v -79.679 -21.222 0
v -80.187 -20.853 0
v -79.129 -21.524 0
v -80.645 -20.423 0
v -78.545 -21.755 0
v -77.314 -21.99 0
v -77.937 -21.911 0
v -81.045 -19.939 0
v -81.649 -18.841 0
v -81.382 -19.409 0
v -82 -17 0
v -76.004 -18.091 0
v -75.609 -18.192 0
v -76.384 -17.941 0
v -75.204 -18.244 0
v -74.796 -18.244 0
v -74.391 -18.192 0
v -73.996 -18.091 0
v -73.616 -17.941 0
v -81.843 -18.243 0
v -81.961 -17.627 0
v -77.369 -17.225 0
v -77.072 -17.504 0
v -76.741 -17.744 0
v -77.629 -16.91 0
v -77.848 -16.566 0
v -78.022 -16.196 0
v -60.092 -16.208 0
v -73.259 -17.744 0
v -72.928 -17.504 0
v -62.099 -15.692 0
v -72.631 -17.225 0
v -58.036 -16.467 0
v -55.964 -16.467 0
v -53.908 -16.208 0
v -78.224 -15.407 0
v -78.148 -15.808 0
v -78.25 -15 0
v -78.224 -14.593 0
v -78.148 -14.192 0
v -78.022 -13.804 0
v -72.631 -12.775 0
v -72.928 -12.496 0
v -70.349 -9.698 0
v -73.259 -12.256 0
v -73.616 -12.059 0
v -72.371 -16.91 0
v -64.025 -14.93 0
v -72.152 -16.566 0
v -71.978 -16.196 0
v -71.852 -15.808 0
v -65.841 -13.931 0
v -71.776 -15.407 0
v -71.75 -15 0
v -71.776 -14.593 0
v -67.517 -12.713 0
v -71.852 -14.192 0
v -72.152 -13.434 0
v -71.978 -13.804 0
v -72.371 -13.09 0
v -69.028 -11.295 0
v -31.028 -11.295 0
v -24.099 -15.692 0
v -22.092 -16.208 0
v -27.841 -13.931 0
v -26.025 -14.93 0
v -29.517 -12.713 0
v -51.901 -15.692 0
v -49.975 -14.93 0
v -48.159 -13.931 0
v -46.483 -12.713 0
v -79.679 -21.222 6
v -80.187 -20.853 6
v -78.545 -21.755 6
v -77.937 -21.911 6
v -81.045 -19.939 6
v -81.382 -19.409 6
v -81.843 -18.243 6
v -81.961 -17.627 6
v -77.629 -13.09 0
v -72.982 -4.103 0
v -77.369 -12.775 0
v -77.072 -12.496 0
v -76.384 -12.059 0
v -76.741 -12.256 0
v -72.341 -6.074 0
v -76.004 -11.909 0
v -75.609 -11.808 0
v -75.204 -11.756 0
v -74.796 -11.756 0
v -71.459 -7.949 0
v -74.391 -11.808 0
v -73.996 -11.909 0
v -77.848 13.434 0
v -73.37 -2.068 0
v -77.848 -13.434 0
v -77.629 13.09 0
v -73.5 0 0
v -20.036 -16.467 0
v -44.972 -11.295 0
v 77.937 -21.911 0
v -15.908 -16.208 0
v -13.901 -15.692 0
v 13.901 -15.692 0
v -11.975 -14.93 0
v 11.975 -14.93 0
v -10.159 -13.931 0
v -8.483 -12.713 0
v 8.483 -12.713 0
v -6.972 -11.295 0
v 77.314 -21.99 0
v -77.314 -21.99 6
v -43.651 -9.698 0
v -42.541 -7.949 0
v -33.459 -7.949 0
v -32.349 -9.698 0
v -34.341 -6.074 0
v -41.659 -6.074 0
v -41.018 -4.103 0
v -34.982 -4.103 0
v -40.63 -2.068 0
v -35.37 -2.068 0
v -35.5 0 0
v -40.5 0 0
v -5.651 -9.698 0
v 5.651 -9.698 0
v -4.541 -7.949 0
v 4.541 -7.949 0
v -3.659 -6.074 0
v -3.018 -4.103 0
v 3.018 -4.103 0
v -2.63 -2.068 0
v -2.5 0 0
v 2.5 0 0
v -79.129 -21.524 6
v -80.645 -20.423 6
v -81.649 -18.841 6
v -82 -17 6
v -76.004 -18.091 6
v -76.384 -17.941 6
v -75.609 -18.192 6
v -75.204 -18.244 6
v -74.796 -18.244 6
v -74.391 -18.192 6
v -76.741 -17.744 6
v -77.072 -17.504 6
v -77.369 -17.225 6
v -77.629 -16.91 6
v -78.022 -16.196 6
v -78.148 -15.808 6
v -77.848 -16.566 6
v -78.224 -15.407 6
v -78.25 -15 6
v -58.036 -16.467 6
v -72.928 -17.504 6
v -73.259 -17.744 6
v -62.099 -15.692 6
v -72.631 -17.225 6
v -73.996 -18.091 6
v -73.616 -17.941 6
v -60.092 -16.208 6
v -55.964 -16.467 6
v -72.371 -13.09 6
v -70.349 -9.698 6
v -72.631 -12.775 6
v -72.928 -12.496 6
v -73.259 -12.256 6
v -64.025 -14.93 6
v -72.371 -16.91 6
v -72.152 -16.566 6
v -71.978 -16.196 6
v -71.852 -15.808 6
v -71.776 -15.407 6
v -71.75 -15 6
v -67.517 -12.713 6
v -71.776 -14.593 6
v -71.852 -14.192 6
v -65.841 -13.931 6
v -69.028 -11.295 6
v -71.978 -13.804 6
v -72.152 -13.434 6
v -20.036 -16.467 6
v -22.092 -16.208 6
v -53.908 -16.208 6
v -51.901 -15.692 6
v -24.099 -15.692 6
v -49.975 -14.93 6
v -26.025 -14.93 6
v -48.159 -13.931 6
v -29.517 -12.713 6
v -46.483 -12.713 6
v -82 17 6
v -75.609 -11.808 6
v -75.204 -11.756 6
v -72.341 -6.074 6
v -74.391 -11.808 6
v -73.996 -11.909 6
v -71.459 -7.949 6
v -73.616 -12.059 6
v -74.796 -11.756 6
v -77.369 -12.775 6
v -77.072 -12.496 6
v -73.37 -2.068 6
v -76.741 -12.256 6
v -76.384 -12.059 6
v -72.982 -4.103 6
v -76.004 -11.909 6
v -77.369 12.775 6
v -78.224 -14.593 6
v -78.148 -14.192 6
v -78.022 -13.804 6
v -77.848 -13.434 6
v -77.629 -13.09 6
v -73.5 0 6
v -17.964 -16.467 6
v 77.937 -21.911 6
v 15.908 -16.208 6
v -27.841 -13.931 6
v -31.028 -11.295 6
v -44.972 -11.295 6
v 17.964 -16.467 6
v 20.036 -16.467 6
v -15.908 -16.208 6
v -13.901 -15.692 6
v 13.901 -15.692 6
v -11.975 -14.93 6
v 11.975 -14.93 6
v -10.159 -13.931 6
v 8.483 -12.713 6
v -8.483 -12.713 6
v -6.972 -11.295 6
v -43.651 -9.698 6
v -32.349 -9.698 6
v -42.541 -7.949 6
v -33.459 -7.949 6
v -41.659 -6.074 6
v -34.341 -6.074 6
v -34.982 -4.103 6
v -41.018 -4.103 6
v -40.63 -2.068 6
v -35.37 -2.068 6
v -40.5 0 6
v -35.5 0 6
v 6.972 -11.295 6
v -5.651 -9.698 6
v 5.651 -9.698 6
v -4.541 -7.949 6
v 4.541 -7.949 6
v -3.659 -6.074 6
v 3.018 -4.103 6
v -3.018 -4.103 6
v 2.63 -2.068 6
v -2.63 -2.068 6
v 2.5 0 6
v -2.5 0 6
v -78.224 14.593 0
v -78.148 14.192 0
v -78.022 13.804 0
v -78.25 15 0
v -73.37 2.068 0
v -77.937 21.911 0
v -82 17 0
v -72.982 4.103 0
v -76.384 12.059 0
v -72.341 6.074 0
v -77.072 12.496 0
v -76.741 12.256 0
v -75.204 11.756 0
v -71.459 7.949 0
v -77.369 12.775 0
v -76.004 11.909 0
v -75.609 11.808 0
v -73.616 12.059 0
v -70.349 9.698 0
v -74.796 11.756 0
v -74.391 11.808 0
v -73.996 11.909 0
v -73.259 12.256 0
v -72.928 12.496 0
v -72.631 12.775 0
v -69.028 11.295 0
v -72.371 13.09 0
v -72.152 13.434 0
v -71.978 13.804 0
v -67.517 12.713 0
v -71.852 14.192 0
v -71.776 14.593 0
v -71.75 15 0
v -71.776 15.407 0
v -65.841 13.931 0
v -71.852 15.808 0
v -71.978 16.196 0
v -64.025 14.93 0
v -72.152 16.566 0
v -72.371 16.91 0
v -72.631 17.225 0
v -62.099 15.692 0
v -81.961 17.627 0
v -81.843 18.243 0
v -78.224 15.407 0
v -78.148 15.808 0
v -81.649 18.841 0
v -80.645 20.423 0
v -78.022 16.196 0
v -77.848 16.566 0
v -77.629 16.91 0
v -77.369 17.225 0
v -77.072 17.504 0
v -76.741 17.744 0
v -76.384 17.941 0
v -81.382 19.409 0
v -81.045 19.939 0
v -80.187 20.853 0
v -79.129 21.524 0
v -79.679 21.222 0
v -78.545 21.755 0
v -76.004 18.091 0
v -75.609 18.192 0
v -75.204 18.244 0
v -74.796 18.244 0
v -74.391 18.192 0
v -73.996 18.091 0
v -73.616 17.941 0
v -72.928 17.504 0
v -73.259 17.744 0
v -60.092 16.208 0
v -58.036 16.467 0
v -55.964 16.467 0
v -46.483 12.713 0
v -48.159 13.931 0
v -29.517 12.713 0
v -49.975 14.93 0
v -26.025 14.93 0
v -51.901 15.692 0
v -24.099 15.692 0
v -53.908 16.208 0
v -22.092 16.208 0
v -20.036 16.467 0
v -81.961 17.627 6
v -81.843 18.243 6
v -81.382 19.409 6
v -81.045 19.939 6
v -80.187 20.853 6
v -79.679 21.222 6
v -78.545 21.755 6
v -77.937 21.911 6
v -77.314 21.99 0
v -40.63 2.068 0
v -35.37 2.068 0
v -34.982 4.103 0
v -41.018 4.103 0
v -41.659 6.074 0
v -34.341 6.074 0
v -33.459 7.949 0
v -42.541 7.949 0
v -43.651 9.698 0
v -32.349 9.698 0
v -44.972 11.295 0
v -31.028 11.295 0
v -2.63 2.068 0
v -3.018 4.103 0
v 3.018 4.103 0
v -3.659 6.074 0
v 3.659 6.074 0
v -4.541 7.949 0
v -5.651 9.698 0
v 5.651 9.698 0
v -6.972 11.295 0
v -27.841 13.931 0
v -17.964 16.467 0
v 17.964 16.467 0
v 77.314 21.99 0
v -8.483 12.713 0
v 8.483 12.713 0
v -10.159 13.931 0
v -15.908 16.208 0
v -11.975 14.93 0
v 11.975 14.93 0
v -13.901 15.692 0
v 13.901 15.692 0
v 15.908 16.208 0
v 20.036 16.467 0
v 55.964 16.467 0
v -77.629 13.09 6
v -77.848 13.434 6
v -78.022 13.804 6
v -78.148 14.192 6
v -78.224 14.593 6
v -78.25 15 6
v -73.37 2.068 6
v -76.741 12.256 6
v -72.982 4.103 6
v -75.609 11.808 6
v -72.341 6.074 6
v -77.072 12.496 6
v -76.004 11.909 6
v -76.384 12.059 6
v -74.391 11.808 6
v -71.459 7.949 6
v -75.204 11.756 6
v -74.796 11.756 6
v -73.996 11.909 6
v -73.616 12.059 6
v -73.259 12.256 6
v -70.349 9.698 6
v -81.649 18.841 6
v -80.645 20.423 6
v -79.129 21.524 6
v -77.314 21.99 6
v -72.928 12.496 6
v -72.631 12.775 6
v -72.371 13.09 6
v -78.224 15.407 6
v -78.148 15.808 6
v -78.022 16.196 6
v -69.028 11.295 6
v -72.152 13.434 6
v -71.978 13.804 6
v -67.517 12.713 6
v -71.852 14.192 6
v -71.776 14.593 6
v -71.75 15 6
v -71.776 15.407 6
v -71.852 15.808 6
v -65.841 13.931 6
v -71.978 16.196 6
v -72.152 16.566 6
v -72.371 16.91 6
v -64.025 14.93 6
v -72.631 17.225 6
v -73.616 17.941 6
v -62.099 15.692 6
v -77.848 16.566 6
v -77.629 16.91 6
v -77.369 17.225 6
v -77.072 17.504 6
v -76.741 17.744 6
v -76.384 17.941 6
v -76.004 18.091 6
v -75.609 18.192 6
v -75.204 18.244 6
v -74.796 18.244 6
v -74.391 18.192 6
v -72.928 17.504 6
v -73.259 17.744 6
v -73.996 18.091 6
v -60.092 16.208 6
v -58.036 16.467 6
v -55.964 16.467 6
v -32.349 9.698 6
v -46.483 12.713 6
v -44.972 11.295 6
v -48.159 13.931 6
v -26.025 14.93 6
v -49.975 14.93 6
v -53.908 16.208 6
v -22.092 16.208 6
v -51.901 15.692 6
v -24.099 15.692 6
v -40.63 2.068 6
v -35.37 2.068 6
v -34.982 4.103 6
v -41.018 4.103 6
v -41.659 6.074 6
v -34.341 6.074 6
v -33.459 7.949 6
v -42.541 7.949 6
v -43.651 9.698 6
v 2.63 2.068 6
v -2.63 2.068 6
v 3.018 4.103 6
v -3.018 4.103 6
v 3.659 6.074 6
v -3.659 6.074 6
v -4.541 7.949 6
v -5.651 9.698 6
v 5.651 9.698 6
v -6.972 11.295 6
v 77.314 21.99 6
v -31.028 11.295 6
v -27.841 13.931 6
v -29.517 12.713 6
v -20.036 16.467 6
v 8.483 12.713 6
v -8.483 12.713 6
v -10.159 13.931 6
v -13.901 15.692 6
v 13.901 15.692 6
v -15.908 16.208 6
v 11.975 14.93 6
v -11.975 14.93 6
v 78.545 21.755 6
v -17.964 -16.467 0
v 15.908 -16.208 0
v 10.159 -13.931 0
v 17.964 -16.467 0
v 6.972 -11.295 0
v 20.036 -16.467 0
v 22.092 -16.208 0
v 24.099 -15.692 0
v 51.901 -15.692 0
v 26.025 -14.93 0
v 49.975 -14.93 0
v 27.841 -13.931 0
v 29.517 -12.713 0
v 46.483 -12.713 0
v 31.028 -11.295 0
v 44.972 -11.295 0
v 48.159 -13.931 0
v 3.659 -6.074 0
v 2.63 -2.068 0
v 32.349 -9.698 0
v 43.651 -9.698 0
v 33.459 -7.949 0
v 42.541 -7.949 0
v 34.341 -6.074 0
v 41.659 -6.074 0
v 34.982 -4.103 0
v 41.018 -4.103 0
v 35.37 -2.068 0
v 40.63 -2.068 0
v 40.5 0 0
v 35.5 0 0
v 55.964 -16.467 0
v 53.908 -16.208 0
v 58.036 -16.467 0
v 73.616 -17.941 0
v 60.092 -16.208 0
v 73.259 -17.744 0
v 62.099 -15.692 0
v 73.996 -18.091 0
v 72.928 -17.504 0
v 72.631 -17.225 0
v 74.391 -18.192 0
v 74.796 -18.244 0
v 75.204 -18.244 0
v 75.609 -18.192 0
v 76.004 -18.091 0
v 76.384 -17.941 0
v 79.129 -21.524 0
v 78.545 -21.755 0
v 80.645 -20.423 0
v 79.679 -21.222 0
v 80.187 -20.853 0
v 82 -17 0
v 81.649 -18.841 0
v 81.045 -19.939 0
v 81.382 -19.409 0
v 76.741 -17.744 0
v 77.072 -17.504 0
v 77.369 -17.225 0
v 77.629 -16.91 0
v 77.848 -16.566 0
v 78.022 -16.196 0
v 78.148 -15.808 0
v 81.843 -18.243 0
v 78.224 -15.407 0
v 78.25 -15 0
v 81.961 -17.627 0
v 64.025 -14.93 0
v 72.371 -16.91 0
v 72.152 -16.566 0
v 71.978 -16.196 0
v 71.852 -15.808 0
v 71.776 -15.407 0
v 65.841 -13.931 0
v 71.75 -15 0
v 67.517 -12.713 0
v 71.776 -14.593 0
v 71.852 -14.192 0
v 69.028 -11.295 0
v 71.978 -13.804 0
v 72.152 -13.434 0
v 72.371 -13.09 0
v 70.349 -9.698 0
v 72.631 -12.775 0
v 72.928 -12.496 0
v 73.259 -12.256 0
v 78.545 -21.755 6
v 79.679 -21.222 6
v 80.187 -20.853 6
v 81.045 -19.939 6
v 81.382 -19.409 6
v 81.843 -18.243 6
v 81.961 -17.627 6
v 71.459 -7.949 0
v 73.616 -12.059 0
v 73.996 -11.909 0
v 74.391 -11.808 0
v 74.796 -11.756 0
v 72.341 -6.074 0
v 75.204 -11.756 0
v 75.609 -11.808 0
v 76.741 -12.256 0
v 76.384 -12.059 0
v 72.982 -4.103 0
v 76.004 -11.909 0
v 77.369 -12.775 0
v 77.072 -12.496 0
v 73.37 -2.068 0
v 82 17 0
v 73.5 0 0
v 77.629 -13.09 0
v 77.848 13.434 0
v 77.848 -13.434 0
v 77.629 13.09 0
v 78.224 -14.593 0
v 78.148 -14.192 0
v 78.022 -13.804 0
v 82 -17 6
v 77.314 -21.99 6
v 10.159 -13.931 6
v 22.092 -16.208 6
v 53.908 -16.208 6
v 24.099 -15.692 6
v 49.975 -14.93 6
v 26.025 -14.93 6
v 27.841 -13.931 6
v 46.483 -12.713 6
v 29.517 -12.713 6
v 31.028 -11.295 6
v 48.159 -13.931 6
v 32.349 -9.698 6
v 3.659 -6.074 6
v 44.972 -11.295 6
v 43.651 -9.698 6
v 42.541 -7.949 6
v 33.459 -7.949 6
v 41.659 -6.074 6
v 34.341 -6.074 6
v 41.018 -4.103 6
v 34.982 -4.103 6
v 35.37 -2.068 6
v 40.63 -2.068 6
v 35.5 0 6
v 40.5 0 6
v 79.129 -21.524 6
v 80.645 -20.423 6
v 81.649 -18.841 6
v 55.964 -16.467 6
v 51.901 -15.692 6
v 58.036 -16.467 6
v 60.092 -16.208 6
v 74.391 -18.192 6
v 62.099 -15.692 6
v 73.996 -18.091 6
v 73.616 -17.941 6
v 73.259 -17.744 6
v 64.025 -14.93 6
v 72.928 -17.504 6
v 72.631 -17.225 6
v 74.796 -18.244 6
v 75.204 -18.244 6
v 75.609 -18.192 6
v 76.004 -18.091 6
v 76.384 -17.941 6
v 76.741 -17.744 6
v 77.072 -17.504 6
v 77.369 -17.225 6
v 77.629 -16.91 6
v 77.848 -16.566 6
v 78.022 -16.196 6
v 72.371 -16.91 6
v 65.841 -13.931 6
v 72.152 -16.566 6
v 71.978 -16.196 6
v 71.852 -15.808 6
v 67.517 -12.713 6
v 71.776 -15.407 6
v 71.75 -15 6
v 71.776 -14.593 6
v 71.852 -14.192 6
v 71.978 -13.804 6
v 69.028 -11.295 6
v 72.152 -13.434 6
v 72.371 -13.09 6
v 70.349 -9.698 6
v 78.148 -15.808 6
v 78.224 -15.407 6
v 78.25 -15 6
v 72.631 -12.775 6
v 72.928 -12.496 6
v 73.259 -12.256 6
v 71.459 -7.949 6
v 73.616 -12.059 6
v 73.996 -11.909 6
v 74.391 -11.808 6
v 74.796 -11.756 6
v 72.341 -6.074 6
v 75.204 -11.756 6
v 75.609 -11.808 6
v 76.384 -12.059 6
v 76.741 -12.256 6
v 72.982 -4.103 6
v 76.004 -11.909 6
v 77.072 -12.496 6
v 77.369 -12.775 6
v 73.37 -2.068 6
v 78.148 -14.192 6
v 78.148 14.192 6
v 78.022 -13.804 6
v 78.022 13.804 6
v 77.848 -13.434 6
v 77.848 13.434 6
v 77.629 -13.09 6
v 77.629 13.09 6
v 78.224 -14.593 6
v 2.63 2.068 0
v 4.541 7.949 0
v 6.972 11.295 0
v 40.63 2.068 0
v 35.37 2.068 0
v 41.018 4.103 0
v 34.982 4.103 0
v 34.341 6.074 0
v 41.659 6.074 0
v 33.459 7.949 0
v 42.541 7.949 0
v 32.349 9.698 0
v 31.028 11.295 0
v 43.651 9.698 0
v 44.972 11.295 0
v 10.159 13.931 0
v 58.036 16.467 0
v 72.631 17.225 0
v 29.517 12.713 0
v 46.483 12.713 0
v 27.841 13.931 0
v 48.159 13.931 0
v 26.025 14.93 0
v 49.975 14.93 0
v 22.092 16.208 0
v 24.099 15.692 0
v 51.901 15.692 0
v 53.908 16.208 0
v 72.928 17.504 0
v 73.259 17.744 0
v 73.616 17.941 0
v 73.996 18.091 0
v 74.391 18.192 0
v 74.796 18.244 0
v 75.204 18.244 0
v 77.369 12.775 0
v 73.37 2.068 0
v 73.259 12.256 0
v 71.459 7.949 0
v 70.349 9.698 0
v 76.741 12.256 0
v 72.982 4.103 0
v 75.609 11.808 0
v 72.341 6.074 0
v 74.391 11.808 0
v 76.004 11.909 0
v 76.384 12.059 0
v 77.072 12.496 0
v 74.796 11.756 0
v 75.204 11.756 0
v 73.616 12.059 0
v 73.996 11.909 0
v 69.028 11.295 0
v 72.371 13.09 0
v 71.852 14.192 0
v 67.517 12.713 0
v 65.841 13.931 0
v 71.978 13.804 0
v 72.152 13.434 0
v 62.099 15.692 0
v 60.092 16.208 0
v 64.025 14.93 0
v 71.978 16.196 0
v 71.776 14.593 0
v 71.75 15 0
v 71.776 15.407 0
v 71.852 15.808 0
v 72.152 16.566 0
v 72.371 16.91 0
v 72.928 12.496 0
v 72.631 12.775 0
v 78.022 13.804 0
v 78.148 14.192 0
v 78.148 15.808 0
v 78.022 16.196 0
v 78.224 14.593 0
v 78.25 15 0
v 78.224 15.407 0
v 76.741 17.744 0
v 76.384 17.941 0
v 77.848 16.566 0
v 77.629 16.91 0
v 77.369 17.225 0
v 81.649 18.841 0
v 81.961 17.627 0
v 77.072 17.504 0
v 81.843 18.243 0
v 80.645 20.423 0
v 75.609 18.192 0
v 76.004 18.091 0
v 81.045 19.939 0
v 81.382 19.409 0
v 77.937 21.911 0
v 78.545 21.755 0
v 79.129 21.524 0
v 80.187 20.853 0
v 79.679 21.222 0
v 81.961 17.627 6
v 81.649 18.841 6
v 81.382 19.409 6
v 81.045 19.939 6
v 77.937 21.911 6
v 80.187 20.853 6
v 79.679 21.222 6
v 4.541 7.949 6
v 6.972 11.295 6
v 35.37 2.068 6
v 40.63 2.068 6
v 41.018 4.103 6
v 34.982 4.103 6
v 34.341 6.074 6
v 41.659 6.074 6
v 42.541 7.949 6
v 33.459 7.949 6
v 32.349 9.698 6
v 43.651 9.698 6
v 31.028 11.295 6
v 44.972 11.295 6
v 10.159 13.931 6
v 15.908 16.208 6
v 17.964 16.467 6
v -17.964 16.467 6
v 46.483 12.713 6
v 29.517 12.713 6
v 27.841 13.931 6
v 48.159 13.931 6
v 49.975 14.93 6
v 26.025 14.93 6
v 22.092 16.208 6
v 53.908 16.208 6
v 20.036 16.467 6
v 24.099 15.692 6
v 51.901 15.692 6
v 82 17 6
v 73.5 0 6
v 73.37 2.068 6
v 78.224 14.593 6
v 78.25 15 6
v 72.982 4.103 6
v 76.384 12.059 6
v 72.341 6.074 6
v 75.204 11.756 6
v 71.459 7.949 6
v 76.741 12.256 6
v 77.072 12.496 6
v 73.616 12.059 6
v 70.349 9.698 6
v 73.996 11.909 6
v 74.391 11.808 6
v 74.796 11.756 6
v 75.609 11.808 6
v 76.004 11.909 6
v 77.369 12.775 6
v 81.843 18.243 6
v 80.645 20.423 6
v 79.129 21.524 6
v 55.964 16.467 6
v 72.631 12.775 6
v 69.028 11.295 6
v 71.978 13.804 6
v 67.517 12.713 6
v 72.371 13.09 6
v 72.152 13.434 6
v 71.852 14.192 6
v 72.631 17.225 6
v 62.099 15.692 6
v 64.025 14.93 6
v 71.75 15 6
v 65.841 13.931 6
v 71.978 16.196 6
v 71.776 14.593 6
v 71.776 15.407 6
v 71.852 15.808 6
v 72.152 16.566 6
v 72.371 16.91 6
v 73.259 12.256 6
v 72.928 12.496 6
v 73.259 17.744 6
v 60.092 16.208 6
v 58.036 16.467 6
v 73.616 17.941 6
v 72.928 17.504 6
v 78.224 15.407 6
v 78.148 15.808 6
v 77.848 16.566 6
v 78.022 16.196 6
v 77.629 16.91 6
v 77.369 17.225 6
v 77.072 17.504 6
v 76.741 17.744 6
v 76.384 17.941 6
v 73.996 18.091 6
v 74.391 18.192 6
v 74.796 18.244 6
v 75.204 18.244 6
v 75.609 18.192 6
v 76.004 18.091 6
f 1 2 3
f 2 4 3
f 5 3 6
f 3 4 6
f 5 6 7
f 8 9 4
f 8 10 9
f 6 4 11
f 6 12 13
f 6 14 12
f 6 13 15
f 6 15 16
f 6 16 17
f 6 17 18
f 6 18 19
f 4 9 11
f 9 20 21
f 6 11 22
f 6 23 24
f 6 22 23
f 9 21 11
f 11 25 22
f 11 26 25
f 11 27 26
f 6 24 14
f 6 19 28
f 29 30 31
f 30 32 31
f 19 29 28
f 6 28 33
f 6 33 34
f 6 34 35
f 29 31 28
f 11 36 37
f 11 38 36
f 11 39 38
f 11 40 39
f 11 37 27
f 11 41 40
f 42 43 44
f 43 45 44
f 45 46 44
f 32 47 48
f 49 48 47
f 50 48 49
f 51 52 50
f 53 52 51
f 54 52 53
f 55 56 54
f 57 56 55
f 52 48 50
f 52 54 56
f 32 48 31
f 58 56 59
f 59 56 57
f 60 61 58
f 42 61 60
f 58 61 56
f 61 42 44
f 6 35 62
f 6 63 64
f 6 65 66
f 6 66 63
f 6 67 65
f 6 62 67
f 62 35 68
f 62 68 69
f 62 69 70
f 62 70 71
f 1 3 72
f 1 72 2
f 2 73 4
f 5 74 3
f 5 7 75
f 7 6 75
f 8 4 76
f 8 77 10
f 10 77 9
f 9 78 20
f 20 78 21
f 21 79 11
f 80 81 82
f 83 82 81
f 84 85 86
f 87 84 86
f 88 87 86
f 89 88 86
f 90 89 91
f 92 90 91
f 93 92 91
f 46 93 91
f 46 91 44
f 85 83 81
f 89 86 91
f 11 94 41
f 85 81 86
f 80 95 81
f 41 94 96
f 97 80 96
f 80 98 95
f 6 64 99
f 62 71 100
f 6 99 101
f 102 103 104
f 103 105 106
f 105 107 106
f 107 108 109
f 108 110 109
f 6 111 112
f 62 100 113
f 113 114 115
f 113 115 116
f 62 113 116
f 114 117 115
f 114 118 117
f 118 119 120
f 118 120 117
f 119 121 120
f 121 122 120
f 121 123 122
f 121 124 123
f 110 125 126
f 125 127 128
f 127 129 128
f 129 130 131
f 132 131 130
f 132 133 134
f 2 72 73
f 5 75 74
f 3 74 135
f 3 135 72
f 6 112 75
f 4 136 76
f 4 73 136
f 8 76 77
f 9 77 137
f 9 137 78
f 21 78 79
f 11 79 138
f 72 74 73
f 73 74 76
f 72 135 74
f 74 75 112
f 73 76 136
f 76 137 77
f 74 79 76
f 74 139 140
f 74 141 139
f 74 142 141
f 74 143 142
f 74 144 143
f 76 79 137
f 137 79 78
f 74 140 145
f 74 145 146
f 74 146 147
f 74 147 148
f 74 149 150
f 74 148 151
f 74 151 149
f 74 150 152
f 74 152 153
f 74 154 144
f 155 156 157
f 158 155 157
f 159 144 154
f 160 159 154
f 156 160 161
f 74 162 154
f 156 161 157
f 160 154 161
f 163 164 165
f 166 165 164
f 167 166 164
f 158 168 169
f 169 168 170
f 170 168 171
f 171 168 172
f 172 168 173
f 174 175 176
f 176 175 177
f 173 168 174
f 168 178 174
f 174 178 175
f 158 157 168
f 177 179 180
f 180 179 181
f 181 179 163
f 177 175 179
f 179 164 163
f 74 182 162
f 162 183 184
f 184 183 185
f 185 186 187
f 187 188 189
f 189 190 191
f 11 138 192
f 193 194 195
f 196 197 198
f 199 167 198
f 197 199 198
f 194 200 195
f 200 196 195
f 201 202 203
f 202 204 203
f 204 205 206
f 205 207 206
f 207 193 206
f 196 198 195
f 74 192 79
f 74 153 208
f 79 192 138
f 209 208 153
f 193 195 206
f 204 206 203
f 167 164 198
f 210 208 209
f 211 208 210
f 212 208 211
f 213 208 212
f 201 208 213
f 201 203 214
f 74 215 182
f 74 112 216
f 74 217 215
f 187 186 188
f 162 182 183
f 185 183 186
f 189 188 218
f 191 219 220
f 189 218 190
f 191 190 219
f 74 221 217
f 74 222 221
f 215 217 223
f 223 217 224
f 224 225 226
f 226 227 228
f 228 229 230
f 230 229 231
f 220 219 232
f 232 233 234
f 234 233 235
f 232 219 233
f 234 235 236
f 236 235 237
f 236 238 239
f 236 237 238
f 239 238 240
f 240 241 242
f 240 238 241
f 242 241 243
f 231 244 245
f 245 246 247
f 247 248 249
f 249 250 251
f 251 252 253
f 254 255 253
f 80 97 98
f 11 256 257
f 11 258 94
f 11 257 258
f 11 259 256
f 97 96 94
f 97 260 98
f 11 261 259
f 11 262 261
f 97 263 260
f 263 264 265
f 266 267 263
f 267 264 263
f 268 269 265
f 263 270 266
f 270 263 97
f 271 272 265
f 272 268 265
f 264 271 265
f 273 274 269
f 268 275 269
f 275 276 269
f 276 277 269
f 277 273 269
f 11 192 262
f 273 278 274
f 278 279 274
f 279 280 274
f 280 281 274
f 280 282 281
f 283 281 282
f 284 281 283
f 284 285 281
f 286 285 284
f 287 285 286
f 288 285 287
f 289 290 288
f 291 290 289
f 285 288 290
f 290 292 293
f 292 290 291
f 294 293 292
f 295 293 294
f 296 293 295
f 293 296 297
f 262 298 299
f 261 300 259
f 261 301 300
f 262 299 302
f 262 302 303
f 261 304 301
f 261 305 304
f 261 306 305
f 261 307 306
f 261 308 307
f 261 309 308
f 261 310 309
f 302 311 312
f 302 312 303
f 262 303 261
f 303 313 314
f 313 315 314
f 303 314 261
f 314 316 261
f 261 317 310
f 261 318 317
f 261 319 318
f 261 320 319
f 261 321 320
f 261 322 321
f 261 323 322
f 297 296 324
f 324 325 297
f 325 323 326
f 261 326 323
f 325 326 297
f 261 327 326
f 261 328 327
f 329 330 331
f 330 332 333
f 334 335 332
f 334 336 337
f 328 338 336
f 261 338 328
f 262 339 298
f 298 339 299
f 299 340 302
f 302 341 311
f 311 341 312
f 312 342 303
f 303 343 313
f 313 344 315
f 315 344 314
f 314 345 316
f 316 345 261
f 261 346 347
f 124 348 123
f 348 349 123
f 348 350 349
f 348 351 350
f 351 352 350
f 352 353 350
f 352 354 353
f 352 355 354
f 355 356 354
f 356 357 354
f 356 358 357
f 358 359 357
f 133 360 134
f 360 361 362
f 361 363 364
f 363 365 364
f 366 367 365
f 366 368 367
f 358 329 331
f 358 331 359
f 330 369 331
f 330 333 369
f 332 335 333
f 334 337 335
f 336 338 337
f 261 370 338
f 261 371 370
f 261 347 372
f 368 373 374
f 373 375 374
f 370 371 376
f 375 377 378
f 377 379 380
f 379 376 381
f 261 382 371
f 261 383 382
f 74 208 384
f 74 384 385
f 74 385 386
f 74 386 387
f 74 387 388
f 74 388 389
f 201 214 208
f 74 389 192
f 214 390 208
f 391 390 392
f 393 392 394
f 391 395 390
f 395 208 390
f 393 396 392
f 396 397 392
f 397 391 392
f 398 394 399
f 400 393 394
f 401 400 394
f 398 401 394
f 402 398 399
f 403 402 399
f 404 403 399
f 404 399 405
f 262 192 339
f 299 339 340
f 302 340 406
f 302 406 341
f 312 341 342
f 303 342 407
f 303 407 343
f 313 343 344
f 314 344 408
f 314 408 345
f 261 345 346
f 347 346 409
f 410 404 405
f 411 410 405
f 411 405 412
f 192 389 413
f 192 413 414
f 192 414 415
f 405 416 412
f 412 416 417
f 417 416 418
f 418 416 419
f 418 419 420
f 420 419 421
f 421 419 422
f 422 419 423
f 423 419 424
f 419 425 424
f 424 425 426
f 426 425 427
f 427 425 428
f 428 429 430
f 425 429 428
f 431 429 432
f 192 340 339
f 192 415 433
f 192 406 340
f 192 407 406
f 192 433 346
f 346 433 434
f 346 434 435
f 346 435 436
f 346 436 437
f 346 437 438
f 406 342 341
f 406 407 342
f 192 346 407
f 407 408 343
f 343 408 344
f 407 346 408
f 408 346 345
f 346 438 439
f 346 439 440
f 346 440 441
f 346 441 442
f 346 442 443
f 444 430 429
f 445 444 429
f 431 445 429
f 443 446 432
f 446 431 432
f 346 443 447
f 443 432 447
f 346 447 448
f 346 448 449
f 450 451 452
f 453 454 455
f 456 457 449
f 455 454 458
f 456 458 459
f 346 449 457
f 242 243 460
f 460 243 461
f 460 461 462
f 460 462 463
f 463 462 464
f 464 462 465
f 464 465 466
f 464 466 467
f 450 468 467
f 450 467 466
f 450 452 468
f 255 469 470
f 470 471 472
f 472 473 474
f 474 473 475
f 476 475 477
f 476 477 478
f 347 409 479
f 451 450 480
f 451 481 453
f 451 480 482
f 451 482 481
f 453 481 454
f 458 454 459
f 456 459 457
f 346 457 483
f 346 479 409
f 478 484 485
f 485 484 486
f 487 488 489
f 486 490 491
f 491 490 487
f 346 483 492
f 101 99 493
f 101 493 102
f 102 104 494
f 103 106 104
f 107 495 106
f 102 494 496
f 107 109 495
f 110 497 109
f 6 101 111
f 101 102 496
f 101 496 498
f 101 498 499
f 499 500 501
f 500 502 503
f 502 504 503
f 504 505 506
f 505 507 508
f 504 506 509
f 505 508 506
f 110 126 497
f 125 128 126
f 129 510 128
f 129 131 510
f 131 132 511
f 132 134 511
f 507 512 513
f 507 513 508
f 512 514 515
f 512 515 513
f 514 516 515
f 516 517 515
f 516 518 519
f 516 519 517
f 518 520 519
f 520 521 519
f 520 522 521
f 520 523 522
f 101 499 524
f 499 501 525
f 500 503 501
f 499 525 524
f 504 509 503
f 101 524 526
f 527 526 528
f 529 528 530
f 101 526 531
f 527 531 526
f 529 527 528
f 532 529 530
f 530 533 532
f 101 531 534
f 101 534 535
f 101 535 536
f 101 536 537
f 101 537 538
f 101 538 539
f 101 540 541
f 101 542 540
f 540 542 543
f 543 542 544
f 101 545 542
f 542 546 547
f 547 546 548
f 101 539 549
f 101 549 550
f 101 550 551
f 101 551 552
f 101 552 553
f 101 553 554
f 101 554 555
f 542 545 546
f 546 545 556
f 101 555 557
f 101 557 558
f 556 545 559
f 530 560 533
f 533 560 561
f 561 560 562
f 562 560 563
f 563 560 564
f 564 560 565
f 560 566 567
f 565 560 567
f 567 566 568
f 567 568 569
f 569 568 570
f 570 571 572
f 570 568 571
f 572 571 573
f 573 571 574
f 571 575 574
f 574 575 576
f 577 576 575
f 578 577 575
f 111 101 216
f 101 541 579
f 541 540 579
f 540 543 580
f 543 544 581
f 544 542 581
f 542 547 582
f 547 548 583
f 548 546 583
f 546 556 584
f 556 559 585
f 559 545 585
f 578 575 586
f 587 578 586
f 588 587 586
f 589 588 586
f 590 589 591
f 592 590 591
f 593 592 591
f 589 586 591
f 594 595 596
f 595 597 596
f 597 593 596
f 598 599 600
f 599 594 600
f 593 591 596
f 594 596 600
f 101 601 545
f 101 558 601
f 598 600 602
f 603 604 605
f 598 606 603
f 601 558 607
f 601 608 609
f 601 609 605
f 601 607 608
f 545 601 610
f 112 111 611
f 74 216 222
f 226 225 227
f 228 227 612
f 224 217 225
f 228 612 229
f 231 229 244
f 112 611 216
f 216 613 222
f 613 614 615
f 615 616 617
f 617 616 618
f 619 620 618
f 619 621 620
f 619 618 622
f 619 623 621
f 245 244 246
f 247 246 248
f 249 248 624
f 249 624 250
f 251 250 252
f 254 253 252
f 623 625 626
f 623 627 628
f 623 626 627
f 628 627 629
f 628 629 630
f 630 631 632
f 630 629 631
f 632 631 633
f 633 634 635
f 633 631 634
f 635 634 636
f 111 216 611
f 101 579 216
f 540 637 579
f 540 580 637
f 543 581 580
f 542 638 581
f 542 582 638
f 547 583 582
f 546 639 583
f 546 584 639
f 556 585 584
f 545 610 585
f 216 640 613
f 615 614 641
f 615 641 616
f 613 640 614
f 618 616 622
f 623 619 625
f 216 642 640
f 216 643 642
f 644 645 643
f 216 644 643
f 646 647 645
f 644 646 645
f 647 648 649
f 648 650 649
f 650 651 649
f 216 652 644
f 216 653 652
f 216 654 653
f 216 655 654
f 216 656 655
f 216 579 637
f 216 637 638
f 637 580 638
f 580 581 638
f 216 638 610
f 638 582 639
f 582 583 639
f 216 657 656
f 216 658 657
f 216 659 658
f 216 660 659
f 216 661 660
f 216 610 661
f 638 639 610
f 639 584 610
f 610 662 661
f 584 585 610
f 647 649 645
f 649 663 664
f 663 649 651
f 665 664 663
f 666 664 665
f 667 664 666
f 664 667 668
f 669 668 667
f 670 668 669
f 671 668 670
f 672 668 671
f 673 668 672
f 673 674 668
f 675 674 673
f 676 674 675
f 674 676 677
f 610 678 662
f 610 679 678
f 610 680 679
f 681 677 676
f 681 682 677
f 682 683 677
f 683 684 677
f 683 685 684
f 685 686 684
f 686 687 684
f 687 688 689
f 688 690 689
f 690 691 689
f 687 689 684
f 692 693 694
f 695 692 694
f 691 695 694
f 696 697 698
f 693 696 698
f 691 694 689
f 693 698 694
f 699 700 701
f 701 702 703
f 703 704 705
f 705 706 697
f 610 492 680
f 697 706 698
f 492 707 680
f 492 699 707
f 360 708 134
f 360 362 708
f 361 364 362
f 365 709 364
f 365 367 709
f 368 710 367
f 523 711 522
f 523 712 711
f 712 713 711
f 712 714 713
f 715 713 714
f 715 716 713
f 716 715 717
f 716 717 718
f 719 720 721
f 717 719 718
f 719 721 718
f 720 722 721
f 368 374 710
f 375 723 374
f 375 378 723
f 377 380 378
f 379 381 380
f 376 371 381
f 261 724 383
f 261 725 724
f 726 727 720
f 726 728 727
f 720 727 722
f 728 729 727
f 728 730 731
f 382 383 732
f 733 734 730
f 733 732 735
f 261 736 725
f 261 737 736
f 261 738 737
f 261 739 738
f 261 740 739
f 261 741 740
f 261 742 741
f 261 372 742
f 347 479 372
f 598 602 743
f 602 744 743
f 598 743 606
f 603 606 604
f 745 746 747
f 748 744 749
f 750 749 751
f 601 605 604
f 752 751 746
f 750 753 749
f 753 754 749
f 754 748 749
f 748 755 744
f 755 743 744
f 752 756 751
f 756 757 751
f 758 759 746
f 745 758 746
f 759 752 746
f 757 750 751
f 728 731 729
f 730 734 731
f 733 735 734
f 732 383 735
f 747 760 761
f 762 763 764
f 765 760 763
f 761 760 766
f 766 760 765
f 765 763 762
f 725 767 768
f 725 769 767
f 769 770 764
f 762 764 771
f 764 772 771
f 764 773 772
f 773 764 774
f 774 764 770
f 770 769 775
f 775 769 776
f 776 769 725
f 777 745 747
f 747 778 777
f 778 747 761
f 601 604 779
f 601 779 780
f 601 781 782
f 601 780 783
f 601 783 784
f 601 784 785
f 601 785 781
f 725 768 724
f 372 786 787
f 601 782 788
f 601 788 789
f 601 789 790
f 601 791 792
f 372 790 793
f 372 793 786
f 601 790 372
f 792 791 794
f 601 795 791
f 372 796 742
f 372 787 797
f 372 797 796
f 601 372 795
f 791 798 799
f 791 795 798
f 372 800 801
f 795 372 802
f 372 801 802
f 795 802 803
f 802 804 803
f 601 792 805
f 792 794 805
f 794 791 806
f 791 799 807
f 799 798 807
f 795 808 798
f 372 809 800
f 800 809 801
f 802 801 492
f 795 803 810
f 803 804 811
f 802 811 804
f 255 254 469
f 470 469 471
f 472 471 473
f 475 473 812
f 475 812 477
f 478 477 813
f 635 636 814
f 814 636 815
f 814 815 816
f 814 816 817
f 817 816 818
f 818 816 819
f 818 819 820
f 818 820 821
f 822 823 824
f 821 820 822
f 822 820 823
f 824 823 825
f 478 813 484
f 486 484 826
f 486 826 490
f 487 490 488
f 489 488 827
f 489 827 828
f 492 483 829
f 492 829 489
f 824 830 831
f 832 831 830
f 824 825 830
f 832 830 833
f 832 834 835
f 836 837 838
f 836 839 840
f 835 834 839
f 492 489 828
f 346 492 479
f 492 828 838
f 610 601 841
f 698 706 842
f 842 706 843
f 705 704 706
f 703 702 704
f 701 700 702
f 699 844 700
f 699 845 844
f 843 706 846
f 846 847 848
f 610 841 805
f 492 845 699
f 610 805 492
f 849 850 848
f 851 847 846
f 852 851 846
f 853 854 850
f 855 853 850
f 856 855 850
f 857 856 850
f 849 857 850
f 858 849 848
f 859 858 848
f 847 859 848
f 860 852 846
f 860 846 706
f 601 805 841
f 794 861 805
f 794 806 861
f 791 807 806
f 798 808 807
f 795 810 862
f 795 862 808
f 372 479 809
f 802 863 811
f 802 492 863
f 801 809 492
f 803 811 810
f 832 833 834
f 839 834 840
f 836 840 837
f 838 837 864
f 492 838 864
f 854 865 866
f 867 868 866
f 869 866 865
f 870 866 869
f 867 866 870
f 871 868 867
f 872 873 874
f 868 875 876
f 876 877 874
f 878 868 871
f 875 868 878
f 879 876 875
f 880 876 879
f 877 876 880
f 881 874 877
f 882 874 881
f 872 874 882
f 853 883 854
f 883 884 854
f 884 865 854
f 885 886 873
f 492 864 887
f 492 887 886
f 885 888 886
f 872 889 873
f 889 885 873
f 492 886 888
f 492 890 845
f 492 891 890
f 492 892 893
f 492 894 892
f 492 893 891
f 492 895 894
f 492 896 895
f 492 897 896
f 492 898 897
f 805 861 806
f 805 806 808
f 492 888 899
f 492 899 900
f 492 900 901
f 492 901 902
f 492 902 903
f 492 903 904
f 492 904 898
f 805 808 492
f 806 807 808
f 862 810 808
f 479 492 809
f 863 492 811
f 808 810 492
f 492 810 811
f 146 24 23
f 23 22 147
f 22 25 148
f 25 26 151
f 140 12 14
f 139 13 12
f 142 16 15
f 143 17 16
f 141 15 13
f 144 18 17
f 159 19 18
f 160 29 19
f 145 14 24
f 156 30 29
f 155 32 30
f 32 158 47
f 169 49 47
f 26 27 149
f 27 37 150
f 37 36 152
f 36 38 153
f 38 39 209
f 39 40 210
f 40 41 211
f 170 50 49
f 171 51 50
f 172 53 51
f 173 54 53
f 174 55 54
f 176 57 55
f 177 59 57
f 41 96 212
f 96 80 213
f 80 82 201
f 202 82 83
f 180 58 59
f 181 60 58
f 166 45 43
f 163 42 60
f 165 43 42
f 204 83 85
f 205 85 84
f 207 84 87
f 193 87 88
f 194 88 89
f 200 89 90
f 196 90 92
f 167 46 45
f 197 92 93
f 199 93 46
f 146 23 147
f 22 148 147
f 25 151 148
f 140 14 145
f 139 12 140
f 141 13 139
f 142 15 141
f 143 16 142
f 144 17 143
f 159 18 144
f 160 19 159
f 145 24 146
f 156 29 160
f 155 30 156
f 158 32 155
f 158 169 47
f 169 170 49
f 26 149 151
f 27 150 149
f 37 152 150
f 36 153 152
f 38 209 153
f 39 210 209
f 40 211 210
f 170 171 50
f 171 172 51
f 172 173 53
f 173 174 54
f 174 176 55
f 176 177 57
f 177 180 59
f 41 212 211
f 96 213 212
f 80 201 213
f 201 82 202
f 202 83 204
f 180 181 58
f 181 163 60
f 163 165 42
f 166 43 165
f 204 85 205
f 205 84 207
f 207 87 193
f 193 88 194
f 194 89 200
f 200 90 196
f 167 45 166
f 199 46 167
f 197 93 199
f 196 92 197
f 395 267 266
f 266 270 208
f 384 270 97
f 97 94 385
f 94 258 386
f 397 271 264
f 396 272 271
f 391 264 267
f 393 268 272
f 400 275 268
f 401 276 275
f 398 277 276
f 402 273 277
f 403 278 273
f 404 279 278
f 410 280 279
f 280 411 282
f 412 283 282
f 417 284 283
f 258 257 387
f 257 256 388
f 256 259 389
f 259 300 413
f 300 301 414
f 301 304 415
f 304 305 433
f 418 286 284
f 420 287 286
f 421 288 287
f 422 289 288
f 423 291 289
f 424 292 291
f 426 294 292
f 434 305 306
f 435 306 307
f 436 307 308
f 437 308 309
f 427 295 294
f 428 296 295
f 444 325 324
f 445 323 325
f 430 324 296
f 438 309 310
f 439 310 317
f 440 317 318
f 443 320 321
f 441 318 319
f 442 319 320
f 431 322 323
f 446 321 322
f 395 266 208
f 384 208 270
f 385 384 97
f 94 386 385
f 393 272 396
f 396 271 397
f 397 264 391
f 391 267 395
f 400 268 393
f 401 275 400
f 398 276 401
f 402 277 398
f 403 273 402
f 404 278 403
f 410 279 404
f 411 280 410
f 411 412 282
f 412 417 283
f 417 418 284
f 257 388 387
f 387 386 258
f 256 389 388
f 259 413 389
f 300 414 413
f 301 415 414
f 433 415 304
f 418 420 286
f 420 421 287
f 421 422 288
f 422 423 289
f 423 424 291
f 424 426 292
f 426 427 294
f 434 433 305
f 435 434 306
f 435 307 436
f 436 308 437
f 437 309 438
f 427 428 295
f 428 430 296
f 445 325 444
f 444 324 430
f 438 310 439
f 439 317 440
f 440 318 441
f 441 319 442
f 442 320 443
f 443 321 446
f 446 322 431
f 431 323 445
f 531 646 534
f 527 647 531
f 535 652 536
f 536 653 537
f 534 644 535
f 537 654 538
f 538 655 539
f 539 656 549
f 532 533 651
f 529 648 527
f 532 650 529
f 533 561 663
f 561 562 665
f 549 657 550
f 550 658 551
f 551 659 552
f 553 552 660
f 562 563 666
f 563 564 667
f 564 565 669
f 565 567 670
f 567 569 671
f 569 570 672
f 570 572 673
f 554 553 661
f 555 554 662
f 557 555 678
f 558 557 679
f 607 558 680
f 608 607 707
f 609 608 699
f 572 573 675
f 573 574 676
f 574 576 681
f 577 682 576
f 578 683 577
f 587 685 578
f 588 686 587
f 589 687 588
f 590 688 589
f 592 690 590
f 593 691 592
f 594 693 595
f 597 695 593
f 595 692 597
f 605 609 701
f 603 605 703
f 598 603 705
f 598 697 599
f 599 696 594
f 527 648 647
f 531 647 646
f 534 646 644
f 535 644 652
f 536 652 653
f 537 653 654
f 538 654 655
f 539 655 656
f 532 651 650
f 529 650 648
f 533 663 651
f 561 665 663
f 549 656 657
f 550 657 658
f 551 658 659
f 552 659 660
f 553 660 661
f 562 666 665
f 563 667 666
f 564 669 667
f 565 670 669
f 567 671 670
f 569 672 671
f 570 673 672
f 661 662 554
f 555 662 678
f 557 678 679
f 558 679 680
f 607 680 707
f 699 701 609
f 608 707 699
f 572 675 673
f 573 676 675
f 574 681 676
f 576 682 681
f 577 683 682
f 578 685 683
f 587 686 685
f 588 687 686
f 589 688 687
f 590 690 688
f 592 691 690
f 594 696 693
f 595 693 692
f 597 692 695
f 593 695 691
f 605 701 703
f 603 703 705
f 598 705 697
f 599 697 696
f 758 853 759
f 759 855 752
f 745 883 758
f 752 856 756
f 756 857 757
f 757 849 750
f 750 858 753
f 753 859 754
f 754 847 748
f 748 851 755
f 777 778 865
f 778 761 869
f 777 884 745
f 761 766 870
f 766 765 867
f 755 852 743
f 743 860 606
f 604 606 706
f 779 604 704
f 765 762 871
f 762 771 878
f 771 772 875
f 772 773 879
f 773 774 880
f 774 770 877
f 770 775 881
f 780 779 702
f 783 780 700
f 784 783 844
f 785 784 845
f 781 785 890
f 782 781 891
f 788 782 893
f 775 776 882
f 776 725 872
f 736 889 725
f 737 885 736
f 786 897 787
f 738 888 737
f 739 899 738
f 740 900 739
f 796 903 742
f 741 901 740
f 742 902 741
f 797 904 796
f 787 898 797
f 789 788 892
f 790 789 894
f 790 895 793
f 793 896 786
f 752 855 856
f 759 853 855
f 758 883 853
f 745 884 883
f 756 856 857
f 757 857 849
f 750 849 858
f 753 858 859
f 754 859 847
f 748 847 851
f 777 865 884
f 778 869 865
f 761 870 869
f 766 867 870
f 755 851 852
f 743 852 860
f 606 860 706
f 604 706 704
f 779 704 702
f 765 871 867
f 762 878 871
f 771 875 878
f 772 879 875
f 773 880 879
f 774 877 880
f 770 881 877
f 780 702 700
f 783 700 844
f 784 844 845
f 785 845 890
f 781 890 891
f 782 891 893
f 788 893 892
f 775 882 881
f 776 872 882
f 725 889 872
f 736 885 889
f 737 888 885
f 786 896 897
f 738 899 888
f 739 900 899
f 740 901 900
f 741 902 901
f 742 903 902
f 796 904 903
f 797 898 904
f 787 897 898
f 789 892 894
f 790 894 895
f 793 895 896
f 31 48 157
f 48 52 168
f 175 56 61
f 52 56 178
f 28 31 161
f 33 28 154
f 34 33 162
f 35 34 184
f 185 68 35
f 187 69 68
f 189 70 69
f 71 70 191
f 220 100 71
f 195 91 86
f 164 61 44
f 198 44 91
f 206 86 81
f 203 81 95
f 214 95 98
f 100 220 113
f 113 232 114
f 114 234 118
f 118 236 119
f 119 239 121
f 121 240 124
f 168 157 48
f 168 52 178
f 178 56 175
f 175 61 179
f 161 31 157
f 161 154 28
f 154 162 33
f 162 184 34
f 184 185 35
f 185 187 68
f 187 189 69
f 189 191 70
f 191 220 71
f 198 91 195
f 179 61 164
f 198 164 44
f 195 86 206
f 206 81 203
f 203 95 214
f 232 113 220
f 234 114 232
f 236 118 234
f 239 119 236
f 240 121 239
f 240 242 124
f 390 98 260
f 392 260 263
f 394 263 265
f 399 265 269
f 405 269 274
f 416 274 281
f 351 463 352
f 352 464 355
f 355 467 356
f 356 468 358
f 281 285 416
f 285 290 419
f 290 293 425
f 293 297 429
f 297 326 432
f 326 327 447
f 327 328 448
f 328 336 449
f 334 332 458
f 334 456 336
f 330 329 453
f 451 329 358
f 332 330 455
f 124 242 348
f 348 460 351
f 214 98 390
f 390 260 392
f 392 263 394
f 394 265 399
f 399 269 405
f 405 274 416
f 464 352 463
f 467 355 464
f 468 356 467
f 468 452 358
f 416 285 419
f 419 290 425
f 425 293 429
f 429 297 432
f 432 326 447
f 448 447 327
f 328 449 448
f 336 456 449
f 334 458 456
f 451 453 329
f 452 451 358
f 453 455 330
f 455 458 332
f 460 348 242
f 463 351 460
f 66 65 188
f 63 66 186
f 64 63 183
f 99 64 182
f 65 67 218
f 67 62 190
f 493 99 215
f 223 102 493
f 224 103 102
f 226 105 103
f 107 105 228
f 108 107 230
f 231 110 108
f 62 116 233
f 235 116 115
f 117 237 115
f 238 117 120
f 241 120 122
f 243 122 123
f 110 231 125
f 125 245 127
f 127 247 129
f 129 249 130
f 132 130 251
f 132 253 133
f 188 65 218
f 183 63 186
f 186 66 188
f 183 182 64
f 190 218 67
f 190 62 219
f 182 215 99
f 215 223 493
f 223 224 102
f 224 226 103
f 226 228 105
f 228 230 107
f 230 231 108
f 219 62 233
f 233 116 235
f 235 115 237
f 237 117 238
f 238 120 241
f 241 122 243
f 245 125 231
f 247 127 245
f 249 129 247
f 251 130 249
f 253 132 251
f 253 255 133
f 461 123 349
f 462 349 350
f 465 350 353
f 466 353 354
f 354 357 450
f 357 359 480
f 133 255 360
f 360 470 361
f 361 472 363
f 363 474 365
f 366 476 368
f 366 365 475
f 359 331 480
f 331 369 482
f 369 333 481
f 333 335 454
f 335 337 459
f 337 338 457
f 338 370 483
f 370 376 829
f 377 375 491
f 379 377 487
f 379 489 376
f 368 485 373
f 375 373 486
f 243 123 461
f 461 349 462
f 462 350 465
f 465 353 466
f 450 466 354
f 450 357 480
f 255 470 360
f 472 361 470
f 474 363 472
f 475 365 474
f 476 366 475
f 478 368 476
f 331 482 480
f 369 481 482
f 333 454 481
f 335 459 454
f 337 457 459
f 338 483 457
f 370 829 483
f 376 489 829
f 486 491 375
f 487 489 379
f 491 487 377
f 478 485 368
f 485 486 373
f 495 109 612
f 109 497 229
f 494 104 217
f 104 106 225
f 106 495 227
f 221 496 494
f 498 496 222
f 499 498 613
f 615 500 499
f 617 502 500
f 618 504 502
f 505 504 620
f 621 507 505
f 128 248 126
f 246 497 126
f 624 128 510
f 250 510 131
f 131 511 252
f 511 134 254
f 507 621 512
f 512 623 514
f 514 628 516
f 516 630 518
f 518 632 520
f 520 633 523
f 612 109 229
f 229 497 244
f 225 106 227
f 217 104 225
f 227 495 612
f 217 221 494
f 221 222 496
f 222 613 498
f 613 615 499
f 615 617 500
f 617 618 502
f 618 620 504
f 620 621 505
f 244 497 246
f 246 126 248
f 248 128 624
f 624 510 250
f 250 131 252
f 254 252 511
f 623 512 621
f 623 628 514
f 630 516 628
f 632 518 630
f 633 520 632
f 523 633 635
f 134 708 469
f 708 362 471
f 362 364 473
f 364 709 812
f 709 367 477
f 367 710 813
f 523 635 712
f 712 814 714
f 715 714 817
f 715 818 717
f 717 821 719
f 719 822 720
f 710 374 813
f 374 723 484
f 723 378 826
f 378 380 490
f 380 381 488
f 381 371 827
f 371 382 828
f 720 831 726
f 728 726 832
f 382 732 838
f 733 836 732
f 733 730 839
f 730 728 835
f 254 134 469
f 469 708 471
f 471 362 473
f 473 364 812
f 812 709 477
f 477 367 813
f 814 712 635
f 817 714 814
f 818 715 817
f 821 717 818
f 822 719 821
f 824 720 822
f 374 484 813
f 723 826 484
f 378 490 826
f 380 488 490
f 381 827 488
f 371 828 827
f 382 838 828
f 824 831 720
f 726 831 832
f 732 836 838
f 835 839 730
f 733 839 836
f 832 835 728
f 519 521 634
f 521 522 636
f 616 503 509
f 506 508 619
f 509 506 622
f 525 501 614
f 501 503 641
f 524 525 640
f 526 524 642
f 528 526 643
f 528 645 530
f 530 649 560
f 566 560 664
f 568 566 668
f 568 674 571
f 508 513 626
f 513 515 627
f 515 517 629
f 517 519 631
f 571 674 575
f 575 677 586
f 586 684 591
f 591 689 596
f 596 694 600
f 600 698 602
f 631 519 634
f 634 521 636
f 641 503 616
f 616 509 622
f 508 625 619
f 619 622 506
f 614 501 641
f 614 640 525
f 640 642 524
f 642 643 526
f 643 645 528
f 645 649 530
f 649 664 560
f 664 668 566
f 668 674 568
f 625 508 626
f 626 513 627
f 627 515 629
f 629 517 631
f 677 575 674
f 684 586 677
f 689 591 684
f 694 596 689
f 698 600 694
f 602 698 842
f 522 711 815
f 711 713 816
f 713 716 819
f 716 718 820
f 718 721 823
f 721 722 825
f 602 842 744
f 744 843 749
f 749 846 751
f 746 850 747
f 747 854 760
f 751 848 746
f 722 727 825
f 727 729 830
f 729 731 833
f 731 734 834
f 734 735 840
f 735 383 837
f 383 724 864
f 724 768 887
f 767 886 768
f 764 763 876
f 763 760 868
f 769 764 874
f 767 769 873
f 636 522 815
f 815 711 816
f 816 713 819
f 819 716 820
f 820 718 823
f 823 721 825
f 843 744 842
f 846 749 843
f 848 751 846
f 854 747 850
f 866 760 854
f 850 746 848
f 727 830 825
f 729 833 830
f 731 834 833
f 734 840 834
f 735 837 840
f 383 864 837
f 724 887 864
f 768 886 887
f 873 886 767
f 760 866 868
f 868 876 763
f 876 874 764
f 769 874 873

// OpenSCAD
$fn = 50;

difference() {
	union() {
		hull() {
			translate(v = [-77.0, 17.0, 0]) {
				cylinder(h = 6, r = 5);
			}
			translate(v = [77.0, 17.0, 0]) {
				cylinder(h = 6, r = 5);
			}
			translate(v = [-77.0, -17.0, 0]) {
				cylinder(h = 6, r = 5);
			}
			translate(v = [77.0, -17.0, 0]) {
				cylinder(h = 6, r = 5);
			}
		}
	}
	union() {
		translate(v = [-75.0, -15.0, -100.0]) {
			cylinder(h = 200, r = 3.25);
		}
		translate(v = [-75.0, 15.0, -100.0]) {
			cylinder(h = 200, r = 3.25);
		}
		translate(v = [75.0, -15.0, -100.0]) {
			cylinder(h = 200, r = 3.25);
		}
		translate(v = [75.0, 15.0, -100.0]) {
			cylinder(h = 200, r = 3.25);
		}
		translate(v = [-75.0, -15.0, -100.0]) {
			cylinder(h = 200, r = 1.8);
		}
		translate(v = [-75.0, 15.0, -100.0]) {
			cylinder(h = 200, r = 1.8);
		}
		translate(v = [75.0, -15.0, -100.0]) {
			cylinder(h = 200, r = 1.8);
		}
		translate(v = [75.0, 15.0, -100.0]) {
			cylinder(h = 200, r = 1.8);
		}
		translate(v = [-57.0, 0, 0.0]) {
			cylinder(h = 6, r = 16.5);
		}
		translate(v = [-19.0, 0, 0.0]) {
			cylinder(h = 6, r = 16.5);
		}
		translate(v = [19.0, 0, 0.0]) {
			cylinder(h = 6, r = 16.5);
		}
		translate(v = [57.0, 0, 0.0]) {
			cylinder(h = 6, r = 16.5);
		}
	}
}
